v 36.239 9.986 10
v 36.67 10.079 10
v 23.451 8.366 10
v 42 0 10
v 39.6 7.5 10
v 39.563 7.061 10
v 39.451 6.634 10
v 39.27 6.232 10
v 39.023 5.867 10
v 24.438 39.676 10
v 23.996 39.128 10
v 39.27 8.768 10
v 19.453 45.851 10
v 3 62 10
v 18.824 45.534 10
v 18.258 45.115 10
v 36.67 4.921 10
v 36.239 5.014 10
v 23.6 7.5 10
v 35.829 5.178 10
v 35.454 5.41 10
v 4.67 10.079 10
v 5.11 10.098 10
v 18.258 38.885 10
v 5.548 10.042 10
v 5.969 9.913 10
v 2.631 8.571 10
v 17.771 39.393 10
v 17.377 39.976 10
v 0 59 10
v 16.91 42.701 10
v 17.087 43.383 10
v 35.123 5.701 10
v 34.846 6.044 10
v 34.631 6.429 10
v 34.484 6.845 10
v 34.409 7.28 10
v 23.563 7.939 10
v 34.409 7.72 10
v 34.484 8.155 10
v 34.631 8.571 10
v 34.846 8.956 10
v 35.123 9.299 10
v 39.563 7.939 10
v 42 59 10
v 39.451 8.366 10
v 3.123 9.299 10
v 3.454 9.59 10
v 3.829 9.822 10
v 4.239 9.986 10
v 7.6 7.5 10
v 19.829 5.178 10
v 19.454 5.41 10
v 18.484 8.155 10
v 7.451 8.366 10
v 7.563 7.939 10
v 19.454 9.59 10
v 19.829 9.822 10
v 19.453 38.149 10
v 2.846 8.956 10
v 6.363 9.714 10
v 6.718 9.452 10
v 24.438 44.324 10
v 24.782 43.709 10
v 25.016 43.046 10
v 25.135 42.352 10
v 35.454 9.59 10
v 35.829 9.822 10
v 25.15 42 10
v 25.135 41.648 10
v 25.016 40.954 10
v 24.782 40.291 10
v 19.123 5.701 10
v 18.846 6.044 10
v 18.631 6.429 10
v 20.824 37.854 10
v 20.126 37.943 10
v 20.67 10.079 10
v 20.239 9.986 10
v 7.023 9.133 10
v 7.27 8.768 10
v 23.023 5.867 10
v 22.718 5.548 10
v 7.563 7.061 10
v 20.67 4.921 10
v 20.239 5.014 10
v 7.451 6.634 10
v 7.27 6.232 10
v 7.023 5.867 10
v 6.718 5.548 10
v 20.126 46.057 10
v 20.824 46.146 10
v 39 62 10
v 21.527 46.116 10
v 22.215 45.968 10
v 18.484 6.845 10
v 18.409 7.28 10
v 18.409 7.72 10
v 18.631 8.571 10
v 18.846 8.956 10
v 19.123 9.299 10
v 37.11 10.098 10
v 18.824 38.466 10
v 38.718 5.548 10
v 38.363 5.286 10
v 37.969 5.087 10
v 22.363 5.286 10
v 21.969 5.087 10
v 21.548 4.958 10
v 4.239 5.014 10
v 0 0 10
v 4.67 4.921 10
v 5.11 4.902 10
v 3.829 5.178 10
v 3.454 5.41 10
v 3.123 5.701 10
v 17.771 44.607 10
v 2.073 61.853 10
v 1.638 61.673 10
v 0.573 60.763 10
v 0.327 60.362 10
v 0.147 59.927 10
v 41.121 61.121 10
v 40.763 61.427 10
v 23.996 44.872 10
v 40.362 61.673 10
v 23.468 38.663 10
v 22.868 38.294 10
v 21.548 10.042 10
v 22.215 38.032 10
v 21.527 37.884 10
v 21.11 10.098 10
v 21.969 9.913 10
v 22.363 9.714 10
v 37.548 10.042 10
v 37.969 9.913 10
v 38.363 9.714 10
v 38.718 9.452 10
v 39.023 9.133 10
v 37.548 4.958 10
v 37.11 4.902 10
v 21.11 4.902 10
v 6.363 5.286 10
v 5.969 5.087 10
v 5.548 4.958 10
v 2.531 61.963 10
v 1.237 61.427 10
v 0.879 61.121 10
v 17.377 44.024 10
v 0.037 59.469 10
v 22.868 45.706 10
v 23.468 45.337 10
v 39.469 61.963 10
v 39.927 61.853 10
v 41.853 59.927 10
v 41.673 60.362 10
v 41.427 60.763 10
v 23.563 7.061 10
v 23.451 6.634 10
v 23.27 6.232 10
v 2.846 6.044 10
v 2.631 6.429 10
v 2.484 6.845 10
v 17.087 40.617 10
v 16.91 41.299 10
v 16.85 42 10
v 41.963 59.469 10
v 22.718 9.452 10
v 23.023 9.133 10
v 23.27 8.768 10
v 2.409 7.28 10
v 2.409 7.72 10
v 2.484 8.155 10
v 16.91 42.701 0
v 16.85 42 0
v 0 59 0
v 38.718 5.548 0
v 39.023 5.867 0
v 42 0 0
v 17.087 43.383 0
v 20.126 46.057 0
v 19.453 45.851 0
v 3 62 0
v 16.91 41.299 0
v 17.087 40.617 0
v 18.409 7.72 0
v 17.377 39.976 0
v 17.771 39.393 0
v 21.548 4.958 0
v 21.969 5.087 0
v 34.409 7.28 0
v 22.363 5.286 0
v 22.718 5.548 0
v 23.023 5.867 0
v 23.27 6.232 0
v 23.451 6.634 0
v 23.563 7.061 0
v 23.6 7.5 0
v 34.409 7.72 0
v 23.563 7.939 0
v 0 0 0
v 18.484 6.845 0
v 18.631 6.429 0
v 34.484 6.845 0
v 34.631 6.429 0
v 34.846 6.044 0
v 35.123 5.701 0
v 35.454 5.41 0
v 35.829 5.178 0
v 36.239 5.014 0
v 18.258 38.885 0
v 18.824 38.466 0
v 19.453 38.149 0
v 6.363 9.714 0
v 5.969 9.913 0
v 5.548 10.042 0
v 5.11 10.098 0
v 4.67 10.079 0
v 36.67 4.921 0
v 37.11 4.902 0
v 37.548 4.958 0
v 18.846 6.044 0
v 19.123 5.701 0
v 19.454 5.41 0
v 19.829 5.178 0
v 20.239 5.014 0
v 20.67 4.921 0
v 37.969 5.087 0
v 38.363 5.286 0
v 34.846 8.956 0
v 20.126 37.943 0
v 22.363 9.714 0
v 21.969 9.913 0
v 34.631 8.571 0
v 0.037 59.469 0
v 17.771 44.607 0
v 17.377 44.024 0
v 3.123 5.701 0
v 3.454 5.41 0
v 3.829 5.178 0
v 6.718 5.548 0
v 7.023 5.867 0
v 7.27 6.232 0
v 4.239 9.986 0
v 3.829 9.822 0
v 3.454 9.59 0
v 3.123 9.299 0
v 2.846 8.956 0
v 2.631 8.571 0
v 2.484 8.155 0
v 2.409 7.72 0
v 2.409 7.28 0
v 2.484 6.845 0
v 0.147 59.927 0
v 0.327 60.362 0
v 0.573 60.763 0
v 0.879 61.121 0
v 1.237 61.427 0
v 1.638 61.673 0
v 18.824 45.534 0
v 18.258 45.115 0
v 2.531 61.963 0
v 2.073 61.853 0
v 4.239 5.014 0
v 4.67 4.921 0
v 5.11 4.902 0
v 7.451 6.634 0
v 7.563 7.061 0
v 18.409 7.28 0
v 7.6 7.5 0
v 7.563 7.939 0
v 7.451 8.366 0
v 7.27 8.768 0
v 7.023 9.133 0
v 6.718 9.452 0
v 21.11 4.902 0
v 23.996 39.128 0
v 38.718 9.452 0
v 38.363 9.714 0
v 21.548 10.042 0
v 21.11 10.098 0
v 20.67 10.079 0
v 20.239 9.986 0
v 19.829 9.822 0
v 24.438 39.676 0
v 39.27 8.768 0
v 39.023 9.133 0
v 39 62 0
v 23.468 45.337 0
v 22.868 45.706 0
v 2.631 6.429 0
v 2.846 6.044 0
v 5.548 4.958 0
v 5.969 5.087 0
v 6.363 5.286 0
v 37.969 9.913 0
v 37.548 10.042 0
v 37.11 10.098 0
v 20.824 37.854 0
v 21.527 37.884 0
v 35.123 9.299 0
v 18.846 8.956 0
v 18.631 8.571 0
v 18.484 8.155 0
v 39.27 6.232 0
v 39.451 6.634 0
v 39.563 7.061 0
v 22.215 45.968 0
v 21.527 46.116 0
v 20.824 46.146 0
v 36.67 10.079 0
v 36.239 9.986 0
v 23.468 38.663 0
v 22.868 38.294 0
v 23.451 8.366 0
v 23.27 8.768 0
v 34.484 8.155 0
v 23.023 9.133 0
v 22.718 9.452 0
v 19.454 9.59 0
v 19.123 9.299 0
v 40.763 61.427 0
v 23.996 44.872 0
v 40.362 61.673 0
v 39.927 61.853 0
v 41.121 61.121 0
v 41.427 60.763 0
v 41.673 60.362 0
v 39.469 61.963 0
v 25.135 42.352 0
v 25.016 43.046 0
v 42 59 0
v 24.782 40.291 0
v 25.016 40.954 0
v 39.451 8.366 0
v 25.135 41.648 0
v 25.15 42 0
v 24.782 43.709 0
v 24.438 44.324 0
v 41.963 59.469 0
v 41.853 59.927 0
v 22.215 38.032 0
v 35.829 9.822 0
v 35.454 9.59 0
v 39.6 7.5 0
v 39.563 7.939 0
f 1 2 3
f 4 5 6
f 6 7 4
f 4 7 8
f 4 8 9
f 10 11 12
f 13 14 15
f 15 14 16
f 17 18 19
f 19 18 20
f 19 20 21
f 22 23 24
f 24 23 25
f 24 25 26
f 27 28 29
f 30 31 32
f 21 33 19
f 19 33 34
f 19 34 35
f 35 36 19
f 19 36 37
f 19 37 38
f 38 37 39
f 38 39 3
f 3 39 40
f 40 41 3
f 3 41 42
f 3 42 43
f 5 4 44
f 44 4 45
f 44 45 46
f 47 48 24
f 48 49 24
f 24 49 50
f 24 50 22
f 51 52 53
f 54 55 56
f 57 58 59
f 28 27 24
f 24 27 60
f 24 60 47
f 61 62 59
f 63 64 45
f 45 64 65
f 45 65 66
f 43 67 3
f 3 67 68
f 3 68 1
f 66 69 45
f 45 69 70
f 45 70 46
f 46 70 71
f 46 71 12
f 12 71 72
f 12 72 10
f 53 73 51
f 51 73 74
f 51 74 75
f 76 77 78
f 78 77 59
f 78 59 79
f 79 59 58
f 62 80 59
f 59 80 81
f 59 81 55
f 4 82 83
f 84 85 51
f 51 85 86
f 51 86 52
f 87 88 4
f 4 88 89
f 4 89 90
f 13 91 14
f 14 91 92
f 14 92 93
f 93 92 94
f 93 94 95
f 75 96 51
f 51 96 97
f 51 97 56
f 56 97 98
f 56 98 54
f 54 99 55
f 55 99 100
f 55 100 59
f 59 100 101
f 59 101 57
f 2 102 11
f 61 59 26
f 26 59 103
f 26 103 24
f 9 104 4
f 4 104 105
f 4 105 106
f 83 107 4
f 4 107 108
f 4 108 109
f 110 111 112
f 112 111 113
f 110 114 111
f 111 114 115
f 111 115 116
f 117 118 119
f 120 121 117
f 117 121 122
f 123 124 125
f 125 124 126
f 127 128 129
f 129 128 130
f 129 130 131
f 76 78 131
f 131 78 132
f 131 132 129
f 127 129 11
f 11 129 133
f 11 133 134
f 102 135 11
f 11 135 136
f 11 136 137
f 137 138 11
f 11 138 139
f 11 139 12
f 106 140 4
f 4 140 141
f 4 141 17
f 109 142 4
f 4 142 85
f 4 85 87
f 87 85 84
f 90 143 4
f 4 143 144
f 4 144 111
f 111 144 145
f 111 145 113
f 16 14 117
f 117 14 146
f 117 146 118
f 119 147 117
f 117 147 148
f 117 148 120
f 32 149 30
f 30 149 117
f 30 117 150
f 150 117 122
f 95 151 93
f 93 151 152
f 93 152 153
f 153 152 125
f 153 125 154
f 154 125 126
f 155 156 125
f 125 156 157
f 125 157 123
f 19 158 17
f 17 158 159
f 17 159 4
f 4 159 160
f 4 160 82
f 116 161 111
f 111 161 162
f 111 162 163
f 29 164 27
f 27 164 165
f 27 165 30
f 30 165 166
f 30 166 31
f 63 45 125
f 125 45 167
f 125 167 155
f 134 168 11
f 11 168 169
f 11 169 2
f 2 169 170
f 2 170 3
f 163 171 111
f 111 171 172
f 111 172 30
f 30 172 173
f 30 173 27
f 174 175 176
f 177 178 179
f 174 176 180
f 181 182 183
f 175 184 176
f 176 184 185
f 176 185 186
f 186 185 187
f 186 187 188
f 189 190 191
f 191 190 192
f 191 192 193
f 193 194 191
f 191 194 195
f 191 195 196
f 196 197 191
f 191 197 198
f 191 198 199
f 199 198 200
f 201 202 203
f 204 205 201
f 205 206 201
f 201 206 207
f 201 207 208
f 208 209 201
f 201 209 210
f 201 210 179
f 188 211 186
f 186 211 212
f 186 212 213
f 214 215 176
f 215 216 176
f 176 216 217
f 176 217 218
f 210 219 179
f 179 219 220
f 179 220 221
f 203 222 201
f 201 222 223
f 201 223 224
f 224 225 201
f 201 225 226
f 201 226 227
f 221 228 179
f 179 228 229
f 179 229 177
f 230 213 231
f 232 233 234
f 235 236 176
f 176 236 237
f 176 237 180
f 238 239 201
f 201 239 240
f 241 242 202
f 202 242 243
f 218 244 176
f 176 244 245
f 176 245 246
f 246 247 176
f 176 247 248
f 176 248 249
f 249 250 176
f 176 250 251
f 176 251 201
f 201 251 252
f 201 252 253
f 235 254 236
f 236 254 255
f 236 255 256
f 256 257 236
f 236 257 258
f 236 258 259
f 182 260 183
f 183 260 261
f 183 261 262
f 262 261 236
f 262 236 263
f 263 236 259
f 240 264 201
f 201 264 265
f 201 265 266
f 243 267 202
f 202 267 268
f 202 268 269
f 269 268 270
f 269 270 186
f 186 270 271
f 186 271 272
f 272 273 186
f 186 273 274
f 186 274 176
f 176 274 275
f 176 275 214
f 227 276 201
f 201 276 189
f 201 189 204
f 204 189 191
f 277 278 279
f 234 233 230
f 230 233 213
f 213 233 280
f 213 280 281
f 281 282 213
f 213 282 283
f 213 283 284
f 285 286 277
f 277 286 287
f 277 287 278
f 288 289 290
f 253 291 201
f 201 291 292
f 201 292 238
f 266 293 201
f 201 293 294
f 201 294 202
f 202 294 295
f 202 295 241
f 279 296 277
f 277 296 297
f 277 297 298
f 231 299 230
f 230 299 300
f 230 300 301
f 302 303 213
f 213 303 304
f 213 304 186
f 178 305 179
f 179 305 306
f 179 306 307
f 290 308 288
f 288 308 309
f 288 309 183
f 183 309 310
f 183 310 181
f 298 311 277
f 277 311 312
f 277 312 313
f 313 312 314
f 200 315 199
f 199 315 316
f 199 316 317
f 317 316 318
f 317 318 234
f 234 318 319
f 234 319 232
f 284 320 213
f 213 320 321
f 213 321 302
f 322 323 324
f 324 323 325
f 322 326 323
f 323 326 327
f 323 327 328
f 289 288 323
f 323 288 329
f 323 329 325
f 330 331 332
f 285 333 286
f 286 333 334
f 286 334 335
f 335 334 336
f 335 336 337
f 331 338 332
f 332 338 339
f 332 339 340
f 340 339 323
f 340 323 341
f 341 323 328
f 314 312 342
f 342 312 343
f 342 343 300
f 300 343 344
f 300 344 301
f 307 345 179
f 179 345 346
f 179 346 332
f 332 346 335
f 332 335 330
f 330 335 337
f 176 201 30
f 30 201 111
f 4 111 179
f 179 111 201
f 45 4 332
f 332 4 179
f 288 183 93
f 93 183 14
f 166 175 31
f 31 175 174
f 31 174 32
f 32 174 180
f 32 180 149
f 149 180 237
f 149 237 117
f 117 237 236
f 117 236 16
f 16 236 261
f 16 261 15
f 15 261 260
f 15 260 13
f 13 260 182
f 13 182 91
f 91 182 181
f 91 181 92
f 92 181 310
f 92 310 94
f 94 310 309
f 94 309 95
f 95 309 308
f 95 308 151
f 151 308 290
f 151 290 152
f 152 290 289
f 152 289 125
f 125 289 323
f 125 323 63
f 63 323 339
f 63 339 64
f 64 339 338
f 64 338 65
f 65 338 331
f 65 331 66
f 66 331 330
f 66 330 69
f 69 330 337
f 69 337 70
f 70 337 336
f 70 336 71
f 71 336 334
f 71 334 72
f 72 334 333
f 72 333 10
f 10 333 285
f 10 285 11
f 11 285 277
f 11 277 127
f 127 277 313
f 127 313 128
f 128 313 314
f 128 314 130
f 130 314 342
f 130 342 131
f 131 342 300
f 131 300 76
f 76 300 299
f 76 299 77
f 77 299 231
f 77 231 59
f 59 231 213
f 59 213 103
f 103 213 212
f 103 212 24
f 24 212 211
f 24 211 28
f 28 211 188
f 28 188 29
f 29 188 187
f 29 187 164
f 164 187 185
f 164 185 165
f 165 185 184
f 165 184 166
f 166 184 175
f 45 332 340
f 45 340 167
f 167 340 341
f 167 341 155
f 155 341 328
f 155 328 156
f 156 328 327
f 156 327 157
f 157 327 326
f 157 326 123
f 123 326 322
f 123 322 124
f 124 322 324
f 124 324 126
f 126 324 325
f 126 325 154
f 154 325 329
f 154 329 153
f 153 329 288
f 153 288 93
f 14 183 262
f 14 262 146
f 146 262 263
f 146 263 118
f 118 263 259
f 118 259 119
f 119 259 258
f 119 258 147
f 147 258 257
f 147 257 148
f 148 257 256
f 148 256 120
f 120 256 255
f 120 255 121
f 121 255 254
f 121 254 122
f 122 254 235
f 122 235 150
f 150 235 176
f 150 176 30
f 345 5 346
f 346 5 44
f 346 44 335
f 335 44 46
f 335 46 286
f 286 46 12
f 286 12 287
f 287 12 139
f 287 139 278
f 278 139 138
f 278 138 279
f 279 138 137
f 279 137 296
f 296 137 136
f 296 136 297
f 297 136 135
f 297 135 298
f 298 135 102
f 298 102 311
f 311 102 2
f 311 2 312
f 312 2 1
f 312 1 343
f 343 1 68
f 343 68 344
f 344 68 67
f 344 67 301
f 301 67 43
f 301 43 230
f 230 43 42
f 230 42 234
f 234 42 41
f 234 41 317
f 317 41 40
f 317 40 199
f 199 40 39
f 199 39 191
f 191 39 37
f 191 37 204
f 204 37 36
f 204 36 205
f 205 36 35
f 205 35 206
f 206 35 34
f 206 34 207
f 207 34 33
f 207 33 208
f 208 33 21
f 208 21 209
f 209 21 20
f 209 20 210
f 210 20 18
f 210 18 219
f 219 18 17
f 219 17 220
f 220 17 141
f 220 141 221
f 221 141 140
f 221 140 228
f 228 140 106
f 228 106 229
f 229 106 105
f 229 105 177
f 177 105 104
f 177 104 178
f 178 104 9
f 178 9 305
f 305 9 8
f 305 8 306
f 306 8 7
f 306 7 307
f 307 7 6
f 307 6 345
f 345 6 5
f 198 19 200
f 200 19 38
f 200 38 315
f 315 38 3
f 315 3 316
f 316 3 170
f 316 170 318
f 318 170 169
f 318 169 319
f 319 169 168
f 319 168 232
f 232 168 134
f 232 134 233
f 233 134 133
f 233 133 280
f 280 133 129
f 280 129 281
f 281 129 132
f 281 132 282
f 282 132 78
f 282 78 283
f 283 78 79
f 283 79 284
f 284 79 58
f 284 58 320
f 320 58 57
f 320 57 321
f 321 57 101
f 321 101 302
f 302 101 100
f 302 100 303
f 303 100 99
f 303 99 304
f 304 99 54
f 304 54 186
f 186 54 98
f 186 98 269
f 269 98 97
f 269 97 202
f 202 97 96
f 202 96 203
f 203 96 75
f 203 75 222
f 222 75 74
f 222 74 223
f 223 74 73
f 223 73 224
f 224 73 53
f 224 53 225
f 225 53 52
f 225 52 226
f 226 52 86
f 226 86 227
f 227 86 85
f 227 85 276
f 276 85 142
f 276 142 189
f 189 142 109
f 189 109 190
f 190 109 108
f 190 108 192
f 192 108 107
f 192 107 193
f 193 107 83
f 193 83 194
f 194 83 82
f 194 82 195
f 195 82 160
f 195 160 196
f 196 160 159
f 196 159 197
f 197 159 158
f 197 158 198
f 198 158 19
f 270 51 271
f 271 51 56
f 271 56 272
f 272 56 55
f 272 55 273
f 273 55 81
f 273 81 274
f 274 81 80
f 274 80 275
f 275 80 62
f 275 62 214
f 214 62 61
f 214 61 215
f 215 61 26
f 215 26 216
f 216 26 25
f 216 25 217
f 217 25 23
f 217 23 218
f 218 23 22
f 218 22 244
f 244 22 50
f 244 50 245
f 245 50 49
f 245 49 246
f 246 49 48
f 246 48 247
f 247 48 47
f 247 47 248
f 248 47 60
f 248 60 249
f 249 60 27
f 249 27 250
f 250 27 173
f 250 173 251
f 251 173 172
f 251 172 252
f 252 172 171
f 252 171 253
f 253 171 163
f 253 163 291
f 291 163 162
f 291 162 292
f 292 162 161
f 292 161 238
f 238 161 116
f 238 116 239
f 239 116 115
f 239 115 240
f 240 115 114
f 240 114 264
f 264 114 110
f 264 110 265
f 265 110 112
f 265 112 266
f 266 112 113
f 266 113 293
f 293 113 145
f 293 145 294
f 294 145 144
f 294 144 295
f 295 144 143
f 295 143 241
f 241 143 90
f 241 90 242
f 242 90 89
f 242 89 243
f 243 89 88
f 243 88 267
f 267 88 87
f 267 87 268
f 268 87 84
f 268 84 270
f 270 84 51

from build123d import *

# Parameters (mm, degrees)
SKETCH1_W           = 42
SKETCH1_H           = 62
SKETCH1_R           = 4.15
BOSS_EXTRUDE1_DEPTH = 10
FILLET1_R           = 3
SKETCH2_R           = 2.6
CUT_EXTRUDE1_DEPTH  = 11


with BuildPart() as part:
    # Sketch1 → Boss-Extrude1 (new body)
    with BuildSketch(Plane.XY):
        with Locations((21, 31)):
            Rectangle(SKETCH1_W, SKETCH1_H)
        with Locations((21, 42)):
            Circle(SKETCH1_R, mode=Mode.SUBTRACT)
    extrude(amount=BOSS_EXTRUDE1_DEPTH)

    # Fillet1
    fillet1_edges = [part.edges().sort_by_distance(p)[0] for p in [
        (0, 62, 5),
        (42, 62, 5),
    ]]
    fillet(fillet1_edges, radius=FILLET1_R)

    # Sketch2 → Cut-Extrude1 (cut, through all)
    with BuildSketch(Plane.XY.offset(10)):
        with Locations((5, 7.5)):
            Circle(SKETCH2_R)
        with Locations((21, 7.5)):
            Circle(SKETCH2_R)
        with Locations((37, 7.5)):
            Circle(SKETCH2_R)
    extrude(amount=-CUT_EXTRUDE1_DEPTH, mode=Mode.SUBTRACT)


solid = part.part
